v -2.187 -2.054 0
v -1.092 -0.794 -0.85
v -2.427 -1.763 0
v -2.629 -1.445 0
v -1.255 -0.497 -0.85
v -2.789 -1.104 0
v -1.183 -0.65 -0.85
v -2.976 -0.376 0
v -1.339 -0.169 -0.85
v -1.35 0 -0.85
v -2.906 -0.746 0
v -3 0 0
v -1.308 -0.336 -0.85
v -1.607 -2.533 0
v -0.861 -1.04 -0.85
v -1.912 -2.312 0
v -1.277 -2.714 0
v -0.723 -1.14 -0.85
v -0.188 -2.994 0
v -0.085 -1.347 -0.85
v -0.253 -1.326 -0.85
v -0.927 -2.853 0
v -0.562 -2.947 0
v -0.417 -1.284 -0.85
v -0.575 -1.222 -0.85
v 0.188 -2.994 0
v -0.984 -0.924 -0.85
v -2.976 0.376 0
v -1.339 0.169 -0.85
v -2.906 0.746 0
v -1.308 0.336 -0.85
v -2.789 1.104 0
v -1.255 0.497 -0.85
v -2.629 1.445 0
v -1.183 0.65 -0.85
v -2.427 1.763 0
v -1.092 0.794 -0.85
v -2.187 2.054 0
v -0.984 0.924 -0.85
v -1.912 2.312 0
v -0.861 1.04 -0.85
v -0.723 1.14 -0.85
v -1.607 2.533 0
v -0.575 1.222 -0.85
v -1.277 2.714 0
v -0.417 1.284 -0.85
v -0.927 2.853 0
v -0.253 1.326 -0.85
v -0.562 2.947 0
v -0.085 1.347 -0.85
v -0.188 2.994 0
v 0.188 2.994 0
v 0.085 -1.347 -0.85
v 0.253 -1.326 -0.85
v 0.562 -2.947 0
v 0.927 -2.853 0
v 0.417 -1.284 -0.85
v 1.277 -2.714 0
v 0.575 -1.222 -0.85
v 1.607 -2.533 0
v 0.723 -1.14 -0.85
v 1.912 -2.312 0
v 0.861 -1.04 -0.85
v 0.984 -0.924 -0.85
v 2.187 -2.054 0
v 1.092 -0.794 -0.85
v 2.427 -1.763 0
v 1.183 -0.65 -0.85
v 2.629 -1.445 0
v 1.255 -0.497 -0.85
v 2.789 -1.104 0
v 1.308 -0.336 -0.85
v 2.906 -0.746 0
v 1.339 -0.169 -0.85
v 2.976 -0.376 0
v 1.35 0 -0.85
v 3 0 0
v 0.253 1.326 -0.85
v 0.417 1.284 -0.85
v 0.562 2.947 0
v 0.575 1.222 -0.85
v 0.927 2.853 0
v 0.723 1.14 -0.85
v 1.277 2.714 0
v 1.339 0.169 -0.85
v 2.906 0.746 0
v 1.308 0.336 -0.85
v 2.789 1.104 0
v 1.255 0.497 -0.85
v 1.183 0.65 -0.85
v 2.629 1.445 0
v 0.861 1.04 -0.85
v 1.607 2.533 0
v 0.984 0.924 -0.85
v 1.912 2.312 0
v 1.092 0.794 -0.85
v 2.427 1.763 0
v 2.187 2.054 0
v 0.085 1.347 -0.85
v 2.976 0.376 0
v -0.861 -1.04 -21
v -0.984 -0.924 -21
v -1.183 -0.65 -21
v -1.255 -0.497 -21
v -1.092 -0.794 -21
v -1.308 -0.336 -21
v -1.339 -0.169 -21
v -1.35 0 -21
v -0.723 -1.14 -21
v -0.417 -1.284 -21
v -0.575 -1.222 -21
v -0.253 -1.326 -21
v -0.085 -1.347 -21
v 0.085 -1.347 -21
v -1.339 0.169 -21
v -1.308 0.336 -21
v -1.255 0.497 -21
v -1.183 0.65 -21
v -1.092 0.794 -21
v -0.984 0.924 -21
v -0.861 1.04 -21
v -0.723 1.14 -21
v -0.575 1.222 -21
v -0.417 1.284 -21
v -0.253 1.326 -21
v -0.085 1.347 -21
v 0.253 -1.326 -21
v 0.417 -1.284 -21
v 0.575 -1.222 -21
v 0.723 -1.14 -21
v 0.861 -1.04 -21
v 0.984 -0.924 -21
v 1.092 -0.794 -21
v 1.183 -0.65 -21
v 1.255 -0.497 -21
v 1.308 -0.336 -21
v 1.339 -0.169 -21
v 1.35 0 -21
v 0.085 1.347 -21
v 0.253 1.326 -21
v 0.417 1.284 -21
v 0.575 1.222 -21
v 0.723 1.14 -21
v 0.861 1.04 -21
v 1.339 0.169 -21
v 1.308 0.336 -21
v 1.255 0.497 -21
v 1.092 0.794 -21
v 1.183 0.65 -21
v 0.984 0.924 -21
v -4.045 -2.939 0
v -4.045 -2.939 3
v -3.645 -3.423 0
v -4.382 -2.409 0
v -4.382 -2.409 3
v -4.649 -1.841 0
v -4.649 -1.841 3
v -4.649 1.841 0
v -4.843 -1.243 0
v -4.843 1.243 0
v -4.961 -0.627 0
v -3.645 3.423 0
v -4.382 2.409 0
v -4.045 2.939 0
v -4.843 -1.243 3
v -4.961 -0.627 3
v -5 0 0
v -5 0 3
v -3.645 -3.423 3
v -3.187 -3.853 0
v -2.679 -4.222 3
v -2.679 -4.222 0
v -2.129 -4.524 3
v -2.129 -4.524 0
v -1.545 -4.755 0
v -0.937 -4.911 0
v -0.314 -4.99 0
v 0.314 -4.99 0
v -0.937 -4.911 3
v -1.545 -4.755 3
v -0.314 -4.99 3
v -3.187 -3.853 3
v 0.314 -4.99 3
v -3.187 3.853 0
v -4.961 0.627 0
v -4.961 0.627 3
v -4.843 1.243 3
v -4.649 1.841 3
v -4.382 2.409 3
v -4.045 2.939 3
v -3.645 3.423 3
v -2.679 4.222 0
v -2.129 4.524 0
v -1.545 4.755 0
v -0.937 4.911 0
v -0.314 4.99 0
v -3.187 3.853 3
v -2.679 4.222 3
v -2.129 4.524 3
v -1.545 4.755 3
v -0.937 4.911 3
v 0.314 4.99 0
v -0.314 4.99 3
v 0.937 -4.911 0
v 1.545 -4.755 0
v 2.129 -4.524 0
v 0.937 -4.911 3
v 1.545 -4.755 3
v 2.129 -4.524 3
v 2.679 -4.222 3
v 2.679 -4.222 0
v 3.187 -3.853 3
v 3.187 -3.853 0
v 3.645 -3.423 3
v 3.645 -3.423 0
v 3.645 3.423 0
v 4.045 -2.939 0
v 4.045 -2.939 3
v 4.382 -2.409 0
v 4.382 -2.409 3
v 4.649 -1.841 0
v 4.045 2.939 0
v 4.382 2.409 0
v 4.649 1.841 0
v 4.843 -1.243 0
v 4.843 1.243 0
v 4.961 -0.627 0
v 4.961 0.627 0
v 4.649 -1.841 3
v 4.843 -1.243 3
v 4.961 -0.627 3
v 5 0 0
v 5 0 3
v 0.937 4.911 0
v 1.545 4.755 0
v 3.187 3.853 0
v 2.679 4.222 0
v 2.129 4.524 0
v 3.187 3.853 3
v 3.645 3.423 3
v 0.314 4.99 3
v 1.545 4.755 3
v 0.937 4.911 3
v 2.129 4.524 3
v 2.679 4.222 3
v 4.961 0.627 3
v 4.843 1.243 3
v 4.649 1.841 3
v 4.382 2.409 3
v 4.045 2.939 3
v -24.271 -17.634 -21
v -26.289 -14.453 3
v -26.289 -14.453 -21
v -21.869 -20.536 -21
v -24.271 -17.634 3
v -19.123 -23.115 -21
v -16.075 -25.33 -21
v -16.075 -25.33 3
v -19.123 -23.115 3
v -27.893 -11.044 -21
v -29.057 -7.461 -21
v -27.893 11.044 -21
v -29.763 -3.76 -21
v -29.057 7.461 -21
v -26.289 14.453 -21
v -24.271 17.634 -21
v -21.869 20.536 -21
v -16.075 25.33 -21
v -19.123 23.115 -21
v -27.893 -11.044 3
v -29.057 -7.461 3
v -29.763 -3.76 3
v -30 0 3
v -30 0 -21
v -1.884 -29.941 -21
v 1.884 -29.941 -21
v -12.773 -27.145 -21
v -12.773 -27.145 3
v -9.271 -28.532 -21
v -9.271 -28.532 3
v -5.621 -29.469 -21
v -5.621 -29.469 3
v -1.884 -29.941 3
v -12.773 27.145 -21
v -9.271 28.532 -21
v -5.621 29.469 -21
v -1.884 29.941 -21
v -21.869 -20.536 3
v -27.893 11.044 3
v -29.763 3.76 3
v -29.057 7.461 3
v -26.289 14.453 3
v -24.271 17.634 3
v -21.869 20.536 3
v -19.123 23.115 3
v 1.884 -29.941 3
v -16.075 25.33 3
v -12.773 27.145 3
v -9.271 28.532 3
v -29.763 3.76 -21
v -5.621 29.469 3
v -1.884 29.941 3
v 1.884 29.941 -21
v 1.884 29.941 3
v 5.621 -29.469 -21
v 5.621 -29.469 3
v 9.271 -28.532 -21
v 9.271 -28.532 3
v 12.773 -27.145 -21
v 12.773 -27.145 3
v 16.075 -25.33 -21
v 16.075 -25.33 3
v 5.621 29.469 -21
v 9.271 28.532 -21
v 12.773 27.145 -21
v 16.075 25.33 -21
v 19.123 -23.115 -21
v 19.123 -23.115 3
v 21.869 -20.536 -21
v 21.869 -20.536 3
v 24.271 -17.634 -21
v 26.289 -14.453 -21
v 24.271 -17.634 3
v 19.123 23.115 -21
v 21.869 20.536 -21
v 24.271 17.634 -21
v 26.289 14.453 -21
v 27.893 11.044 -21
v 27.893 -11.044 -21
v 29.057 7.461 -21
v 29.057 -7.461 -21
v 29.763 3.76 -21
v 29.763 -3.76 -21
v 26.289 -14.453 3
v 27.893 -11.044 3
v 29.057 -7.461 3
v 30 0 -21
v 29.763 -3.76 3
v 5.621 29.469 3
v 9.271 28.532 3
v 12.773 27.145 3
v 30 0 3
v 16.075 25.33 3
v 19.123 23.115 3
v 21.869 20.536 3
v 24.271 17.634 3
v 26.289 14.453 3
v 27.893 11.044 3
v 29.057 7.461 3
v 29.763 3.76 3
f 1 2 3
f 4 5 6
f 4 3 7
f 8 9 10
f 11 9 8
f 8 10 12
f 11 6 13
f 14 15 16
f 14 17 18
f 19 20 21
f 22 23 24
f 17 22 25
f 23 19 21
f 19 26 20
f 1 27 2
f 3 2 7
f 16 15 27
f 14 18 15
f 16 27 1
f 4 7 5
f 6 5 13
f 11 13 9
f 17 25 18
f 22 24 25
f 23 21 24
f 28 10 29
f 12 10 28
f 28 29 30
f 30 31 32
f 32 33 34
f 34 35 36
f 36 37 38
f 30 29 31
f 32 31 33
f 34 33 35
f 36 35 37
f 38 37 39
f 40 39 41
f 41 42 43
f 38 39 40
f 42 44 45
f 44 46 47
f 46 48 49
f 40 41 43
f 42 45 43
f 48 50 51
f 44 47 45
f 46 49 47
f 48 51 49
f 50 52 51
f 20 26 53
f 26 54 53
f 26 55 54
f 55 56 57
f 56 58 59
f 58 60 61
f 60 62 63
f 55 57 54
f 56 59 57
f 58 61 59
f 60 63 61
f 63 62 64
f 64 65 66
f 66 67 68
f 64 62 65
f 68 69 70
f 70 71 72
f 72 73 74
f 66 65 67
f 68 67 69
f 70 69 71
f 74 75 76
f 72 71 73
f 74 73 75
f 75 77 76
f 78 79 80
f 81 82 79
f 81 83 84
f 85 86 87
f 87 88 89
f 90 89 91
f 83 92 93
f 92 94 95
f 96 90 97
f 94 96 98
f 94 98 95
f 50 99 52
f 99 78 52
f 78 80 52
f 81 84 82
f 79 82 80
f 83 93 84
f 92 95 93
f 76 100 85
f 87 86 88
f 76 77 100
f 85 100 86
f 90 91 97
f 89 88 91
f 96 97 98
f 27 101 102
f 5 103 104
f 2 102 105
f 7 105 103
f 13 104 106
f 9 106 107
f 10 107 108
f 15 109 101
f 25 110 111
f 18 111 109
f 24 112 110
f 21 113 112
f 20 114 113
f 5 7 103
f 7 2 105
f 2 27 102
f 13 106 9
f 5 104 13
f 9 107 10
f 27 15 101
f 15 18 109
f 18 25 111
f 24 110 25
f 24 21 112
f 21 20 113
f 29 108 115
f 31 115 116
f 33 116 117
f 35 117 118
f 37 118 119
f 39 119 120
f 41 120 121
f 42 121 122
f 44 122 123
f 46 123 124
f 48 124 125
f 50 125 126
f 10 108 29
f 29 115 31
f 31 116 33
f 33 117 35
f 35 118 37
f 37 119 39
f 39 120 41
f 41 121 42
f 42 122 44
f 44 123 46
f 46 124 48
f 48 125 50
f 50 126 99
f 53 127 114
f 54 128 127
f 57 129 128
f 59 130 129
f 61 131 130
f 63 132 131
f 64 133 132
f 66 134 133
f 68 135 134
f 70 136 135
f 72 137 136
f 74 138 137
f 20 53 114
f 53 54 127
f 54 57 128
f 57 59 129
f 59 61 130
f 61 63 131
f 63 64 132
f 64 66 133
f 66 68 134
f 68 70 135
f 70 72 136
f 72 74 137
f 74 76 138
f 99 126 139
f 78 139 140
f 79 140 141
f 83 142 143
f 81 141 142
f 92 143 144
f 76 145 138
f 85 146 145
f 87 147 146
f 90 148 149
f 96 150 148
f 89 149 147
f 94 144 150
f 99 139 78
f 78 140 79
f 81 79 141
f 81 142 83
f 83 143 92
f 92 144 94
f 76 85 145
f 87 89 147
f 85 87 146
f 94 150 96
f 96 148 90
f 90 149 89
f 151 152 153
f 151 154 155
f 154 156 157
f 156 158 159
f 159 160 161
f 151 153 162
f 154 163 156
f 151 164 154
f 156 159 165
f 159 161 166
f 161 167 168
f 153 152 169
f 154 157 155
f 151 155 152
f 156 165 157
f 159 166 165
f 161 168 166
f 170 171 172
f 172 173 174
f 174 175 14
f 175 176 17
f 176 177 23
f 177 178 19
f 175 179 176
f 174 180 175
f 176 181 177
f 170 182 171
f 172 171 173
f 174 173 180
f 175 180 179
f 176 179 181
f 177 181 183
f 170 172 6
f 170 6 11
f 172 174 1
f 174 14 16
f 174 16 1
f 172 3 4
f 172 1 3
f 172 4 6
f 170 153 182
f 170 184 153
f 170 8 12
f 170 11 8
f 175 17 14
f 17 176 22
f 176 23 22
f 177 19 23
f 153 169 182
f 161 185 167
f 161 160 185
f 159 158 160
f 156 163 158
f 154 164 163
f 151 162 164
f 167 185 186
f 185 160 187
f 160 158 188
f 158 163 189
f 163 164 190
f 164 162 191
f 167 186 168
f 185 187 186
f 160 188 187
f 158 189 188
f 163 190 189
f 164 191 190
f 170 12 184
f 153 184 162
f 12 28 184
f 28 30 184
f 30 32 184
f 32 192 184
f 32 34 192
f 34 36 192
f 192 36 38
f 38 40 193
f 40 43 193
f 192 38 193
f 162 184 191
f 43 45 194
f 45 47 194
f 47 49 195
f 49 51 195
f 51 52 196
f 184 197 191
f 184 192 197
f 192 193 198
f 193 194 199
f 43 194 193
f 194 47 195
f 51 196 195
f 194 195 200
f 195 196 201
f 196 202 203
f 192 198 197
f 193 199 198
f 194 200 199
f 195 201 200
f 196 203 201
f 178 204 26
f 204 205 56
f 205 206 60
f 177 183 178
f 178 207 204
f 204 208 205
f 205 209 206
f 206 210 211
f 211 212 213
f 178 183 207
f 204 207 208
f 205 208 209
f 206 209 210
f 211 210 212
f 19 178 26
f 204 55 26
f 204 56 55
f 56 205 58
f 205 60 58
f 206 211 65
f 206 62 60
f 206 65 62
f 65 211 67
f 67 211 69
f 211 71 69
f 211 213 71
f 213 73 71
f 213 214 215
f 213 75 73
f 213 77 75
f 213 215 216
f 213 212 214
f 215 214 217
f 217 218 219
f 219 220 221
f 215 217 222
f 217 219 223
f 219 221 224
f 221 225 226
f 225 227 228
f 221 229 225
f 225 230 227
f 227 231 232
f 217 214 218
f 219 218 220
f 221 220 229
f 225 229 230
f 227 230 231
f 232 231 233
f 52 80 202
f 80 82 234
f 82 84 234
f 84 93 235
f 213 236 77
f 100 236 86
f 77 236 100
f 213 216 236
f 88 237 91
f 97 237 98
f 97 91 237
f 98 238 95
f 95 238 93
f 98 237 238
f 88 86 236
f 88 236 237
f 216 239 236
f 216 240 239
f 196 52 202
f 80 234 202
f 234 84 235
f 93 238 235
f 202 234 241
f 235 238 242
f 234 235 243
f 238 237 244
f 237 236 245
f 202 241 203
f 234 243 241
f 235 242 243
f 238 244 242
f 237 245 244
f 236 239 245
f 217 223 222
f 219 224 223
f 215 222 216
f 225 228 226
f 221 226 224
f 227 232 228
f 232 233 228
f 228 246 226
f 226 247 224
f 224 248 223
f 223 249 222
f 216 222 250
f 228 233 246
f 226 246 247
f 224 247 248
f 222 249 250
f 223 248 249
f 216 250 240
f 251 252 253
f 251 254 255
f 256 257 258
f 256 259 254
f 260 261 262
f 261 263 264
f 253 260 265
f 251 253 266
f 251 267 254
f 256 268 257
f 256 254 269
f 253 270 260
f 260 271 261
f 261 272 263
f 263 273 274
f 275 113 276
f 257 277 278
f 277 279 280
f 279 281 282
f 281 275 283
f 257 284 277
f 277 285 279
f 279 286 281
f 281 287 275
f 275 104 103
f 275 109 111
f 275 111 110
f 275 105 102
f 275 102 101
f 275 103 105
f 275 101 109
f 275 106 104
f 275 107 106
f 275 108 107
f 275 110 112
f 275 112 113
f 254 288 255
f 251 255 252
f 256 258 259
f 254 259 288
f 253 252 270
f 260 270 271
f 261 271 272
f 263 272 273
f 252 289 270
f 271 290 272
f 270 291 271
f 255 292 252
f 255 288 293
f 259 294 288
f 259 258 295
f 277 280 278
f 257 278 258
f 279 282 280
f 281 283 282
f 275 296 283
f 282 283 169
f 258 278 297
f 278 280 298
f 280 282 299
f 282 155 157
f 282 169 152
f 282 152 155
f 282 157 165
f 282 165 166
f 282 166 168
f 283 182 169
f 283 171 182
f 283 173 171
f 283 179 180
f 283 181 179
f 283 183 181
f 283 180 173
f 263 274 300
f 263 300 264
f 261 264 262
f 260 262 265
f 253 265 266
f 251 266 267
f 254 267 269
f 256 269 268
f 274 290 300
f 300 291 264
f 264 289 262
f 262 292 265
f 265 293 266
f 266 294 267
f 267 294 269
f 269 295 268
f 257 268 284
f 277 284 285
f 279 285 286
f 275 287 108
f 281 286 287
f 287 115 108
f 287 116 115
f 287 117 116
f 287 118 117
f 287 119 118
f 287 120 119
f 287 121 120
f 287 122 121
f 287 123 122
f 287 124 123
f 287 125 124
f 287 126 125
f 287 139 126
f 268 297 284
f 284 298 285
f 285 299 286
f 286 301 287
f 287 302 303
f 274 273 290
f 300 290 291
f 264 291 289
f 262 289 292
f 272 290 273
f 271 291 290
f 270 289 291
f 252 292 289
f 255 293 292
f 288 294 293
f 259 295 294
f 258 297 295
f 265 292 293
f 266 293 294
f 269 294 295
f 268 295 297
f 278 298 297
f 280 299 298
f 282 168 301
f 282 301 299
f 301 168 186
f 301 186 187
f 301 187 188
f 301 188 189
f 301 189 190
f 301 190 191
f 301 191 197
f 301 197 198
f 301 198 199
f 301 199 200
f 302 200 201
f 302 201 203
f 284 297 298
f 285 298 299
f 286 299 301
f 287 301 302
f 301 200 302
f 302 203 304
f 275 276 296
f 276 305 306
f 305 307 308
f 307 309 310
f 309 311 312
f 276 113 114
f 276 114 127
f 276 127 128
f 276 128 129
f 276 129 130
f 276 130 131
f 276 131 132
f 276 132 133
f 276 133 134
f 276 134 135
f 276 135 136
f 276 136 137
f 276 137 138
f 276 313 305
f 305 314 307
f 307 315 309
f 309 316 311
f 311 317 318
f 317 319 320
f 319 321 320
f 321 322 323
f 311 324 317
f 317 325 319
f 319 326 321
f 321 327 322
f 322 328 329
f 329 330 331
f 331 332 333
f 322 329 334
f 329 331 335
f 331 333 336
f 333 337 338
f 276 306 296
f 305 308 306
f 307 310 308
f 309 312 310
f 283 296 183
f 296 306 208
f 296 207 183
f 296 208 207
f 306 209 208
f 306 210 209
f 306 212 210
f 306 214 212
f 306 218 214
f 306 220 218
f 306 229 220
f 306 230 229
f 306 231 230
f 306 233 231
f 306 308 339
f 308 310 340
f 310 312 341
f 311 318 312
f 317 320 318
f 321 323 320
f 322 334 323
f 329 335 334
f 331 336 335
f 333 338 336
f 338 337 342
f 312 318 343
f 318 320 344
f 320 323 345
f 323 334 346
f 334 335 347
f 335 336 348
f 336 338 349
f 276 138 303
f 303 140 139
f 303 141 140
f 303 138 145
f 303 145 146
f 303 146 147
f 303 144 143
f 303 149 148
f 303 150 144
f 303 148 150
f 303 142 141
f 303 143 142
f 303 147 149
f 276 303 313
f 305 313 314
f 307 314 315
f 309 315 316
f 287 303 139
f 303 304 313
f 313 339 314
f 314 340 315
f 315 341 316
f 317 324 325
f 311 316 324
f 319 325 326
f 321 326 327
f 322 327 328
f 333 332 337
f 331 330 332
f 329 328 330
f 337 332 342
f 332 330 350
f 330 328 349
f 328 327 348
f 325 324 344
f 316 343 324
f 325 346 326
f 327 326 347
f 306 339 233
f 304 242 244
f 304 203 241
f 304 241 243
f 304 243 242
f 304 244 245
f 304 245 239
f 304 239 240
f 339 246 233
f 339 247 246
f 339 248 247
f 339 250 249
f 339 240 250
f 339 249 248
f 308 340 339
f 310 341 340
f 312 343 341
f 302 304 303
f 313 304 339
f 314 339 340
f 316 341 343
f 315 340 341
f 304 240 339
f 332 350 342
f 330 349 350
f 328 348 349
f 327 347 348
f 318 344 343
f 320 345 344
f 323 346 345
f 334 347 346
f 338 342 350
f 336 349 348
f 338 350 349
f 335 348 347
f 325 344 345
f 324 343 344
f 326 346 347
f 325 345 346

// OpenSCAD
$fn = 50;

difference() {
	union() {
		translate(v = [0, 0, -21.0]) {
			cylinder(h = 24, r = 30.0);
		}
	}
	union() {
		translate(v = [0, 0, 0]) {
			rotate(a = [0, 0, 0]) {
				difference() {
					union() {
						translate(v = [0, 0, -24.0]) {
							cylinder(h = 24, r = 1.0);
						}
						translate(v = [0, 0, -0.85]) {
							cylinder(h = 0.85, r1 = 1.35, r2 = 3.0);
						}
						translate(v = [0, 0, -24.0]) {
							cylinder(h = 24, r = 1.35);
						}
						translate(v = [0, 0, -24.0]) {
							cylinder(h = 24, r = 1.0);
						}
					}
					union();
				}
			}
		}
		#cylinder(h = 3, r = 5.0);
	}
}
